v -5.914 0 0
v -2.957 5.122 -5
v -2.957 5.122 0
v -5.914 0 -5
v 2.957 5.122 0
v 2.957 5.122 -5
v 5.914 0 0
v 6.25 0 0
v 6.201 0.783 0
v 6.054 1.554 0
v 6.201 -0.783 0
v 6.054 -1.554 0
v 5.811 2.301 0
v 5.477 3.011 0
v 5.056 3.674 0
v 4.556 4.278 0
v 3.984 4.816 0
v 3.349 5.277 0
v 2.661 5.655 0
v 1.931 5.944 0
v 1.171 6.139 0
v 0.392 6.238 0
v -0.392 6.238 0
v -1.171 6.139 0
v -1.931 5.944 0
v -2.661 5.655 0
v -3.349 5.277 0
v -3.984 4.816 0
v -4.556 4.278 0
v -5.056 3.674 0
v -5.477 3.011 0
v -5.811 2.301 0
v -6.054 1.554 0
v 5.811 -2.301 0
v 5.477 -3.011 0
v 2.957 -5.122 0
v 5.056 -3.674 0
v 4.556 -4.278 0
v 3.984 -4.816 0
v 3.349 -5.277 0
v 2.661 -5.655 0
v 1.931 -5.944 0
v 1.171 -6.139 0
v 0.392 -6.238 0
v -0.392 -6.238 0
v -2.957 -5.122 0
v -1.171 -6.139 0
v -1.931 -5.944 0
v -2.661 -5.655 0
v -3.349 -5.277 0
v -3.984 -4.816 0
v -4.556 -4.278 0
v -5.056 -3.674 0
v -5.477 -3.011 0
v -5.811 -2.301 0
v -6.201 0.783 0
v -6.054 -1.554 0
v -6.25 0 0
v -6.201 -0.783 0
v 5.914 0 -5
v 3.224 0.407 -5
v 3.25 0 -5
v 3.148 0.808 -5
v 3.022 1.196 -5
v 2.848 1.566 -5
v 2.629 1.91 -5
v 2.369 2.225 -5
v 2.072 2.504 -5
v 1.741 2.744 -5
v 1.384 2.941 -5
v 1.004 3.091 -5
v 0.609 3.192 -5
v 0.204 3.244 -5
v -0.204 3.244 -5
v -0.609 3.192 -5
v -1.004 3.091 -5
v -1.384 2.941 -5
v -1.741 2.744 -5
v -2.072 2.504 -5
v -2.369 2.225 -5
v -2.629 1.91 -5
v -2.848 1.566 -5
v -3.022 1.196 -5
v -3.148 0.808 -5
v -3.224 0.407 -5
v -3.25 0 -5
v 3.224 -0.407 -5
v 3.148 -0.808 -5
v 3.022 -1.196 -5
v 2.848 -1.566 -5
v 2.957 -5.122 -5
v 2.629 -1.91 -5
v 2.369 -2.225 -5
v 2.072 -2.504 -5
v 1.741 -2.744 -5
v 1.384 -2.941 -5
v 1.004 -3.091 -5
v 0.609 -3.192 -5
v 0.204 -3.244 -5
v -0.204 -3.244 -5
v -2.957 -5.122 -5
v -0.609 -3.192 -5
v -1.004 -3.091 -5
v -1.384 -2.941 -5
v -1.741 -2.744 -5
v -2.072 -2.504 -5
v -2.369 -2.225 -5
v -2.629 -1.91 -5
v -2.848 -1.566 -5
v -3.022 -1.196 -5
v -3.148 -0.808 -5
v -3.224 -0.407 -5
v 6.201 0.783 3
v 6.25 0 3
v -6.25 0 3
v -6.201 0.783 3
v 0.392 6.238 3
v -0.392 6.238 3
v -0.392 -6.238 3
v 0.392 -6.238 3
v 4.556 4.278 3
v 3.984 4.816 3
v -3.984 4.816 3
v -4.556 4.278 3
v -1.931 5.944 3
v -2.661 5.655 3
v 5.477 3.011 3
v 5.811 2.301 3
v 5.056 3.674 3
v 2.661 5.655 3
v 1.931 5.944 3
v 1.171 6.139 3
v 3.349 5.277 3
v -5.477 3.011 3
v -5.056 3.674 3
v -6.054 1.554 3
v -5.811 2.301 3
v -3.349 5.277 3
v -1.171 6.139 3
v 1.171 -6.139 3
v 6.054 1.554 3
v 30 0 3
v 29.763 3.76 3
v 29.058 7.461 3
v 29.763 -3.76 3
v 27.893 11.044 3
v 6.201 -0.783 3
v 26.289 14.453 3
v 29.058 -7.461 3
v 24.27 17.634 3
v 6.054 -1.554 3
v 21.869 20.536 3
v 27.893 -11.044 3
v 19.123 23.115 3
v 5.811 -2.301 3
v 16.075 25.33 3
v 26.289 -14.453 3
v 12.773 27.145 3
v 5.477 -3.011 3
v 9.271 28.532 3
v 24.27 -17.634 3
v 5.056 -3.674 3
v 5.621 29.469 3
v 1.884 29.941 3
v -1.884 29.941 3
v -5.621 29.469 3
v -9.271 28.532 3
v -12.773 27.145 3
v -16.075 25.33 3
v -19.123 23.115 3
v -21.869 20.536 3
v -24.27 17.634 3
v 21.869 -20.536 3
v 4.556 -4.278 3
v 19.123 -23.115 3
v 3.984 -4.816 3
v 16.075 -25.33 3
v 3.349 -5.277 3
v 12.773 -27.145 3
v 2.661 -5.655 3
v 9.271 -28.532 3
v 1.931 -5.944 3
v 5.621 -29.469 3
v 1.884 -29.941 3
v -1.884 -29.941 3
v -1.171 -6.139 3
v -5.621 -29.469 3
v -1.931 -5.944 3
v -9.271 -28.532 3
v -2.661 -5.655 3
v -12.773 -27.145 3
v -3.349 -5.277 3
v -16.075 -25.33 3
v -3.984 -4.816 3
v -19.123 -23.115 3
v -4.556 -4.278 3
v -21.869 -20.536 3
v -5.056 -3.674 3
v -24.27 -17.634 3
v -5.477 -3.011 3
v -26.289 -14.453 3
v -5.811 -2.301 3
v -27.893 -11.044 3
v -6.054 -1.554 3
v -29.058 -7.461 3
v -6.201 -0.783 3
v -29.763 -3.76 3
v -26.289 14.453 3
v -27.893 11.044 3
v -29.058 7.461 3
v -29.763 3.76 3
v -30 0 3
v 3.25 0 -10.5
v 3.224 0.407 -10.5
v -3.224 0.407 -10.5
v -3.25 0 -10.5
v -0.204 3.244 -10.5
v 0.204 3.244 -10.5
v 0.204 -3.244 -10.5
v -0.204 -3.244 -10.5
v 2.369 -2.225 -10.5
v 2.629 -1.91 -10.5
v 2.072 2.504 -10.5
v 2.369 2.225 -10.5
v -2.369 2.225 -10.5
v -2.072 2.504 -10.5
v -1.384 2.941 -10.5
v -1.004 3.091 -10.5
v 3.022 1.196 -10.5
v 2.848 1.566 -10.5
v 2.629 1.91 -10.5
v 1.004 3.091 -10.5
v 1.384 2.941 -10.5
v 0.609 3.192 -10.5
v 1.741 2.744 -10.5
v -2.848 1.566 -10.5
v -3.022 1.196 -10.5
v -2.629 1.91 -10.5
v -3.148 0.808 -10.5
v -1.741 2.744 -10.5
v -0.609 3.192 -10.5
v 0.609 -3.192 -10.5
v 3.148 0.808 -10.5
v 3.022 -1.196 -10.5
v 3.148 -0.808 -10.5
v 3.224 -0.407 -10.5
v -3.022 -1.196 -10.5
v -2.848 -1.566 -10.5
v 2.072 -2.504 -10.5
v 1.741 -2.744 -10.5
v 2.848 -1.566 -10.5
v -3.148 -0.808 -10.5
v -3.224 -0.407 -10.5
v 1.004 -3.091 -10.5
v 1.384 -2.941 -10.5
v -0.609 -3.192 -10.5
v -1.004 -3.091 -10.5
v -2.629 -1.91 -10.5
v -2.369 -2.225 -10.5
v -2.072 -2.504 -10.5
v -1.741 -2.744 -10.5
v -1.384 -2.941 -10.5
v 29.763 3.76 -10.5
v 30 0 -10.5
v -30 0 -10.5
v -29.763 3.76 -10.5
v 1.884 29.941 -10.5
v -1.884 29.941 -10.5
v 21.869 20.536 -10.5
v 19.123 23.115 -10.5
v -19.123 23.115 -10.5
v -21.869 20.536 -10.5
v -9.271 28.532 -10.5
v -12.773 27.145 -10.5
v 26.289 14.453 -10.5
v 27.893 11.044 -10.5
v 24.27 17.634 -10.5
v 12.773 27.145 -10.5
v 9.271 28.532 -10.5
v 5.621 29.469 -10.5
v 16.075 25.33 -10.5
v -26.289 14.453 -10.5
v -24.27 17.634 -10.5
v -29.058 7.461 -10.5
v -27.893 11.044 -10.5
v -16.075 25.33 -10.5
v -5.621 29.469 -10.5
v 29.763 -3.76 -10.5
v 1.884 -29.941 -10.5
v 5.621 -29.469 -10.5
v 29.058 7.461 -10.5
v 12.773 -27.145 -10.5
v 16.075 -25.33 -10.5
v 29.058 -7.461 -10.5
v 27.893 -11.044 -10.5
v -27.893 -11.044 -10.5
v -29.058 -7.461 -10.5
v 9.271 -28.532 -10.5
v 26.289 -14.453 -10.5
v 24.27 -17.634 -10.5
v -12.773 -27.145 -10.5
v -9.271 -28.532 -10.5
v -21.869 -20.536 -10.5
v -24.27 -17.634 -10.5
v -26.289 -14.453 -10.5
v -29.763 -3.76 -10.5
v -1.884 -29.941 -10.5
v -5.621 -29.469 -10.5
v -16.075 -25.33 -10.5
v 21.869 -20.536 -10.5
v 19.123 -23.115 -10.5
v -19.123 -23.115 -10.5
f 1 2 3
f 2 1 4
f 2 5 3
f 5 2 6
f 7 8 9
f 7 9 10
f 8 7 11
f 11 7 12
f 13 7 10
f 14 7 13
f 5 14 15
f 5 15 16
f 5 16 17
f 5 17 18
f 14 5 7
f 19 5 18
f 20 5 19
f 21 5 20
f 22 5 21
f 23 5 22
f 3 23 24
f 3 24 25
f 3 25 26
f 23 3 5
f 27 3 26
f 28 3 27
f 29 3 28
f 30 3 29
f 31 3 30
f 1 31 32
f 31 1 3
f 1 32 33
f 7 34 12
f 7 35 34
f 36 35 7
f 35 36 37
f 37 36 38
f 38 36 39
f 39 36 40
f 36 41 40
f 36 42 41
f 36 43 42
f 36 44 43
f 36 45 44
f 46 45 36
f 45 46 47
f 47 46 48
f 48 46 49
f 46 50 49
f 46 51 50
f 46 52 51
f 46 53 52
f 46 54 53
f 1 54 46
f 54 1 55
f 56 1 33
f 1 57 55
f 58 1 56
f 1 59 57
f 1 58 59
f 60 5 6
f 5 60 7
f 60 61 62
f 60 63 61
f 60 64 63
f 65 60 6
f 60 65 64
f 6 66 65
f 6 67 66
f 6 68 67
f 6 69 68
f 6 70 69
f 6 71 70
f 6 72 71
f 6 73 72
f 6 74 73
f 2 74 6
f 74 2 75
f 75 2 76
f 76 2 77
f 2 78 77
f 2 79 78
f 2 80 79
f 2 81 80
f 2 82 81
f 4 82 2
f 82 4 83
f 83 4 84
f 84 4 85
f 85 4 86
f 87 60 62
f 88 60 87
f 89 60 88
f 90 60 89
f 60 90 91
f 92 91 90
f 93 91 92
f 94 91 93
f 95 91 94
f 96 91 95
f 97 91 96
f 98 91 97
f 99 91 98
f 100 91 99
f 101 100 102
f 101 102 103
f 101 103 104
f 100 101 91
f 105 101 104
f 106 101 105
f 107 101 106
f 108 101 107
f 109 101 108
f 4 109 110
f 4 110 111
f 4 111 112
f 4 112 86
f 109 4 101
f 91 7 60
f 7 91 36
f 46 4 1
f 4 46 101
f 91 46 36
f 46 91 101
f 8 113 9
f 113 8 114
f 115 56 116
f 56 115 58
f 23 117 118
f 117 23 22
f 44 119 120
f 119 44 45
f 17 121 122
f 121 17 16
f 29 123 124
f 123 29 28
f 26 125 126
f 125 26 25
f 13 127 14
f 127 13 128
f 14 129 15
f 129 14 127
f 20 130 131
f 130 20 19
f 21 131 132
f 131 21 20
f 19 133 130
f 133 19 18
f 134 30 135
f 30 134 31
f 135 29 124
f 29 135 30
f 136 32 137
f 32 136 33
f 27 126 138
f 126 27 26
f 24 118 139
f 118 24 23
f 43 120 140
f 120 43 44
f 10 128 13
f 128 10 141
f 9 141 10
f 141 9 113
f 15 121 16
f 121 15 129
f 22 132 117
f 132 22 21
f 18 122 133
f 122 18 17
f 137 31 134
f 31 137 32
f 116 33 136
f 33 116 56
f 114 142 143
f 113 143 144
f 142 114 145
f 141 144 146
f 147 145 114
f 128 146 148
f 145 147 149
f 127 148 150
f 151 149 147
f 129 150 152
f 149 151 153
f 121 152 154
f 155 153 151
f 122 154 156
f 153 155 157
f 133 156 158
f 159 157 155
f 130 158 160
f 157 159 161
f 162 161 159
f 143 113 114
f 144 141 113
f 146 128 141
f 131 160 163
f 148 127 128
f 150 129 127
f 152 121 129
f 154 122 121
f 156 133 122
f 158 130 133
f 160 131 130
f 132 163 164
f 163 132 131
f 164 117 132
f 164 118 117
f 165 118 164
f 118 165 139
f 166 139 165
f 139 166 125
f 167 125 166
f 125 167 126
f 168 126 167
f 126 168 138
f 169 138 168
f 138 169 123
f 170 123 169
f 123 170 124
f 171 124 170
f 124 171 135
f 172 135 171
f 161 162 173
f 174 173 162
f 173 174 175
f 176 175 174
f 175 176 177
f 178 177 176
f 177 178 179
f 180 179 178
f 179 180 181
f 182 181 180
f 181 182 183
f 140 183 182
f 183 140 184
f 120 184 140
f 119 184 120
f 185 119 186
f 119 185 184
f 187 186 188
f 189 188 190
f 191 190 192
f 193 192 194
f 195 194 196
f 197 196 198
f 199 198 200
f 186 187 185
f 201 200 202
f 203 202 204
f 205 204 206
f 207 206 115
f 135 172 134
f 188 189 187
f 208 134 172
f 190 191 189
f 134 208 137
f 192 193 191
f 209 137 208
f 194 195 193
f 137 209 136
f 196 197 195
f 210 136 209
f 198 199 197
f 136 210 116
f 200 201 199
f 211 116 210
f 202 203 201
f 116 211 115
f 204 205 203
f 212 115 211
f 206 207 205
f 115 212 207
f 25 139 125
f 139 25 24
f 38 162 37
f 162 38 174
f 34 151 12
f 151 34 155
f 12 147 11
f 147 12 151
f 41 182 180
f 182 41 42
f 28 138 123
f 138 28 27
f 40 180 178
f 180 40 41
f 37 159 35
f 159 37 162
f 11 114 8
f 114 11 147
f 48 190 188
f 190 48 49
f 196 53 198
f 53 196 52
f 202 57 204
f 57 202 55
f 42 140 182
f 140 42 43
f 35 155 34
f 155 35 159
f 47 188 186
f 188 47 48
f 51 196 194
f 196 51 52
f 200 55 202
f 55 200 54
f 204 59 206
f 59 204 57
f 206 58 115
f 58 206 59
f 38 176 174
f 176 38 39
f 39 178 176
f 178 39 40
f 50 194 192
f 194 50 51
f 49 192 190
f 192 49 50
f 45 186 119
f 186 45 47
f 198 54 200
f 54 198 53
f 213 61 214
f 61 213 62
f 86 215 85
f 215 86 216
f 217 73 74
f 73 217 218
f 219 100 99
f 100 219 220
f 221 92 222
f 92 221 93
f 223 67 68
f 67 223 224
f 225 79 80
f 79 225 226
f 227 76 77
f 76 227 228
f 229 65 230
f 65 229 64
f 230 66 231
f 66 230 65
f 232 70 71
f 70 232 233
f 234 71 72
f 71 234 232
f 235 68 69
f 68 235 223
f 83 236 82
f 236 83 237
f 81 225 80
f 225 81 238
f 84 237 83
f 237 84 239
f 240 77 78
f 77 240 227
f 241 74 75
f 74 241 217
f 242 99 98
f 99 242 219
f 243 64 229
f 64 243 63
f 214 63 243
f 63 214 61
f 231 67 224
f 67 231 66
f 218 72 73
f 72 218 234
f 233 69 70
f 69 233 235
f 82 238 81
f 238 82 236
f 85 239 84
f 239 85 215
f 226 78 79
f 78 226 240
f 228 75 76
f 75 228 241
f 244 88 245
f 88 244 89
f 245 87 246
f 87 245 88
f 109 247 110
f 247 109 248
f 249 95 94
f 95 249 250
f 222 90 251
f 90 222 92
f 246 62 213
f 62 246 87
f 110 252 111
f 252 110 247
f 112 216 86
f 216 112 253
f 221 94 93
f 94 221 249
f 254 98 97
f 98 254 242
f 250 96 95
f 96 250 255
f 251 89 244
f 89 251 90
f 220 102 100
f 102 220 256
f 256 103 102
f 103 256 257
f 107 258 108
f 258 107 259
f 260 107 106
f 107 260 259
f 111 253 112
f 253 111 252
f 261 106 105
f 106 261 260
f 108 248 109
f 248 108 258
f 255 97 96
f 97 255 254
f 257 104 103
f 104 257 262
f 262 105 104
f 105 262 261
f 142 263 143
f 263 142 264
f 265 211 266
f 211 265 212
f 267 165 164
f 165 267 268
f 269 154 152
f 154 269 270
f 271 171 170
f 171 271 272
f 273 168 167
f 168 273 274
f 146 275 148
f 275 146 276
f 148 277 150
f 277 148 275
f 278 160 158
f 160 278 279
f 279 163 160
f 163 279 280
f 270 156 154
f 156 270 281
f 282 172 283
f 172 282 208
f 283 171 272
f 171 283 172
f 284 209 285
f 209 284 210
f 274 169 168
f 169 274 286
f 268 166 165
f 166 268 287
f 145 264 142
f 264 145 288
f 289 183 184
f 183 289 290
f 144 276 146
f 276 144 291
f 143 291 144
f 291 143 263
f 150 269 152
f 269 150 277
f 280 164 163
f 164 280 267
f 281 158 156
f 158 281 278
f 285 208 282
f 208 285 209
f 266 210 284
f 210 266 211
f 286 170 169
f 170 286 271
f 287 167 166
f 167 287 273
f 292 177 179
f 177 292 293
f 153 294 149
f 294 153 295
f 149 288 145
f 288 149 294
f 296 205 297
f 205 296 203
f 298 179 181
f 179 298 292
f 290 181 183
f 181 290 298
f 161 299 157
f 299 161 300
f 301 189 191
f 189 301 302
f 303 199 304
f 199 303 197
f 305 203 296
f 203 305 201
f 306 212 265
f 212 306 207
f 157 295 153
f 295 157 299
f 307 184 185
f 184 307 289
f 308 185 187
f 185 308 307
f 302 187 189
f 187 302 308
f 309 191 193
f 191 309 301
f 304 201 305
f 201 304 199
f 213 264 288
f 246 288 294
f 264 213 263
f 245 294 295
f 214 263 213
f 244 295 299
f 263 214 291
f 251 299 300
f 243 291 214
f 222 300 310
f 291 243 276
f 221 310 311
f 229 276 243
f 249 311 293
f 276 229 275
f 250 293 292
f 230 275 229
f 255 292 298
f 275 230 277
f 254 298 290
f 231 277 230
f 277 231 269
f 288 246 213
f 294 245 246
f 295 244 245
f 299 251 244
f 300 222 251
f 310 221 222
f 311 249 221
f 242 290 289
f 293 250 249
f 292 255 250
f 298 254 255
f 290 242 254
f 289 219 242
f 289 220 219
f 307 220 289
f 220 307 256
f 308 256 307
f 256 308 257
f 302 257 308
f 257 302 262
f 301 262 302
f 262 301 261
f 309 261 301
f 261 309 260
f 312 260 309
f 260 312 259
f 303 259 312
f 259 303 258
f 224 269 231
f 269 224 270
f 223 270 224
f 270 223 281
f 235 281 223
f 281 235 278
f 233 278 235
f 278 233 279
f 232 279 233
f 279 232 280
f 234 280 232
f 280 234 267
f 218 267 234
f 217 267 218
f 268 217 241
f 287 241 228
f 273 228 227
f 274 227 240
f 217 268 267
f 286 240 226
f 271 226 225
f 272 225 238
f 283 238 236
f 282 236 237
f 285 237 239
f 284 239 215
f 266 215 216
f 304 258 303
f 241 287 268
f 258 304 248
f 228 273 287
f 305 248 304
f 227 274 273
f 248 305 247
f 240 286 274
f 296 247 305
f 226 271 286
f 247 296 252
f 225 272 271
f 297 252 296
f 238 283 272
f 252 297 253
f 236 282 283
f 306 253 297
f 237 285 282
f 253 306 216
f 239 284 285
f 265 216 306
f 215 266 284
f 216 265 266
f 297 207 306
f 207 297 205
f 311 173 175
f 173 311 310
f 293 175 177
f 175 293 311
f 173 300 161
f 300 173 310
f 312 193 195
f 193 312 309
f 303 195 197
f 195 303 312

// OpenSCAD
$fn = 50;

difference() {
	union() {
		translate(v = [0, 0, -10.5]) {
			cylinder(h = 13.5, r = 30.0);
		}
	}
	union() {
		translate(v = [0, 0, 0]) {
			rotate(a = [0, 0, 0]) {
				difference() {
					union() {
						translate(v = [0, 0, -5]) {
							linear_extrude(height = 5) {
								polygon(points = [[5.914249999999999, 0.0], [2.957125, 5.1218907443321156], [-2.9571249999999982, 5.1218907443321156], [-5.914249999999999, 7.242867331857232e-16], [-2.9571250000000022, -5.121890744332115], [2.9571249999999956, -5.121890744332118]]);
							}
						}
					}
					union();
				}
			}
		}
		#cylinder(h = 3, r = 6.25);
		#translate(v = [0, 0, -100.0]) {
			cylinder(h = 200, r = 3.25);
		}
	}
}
